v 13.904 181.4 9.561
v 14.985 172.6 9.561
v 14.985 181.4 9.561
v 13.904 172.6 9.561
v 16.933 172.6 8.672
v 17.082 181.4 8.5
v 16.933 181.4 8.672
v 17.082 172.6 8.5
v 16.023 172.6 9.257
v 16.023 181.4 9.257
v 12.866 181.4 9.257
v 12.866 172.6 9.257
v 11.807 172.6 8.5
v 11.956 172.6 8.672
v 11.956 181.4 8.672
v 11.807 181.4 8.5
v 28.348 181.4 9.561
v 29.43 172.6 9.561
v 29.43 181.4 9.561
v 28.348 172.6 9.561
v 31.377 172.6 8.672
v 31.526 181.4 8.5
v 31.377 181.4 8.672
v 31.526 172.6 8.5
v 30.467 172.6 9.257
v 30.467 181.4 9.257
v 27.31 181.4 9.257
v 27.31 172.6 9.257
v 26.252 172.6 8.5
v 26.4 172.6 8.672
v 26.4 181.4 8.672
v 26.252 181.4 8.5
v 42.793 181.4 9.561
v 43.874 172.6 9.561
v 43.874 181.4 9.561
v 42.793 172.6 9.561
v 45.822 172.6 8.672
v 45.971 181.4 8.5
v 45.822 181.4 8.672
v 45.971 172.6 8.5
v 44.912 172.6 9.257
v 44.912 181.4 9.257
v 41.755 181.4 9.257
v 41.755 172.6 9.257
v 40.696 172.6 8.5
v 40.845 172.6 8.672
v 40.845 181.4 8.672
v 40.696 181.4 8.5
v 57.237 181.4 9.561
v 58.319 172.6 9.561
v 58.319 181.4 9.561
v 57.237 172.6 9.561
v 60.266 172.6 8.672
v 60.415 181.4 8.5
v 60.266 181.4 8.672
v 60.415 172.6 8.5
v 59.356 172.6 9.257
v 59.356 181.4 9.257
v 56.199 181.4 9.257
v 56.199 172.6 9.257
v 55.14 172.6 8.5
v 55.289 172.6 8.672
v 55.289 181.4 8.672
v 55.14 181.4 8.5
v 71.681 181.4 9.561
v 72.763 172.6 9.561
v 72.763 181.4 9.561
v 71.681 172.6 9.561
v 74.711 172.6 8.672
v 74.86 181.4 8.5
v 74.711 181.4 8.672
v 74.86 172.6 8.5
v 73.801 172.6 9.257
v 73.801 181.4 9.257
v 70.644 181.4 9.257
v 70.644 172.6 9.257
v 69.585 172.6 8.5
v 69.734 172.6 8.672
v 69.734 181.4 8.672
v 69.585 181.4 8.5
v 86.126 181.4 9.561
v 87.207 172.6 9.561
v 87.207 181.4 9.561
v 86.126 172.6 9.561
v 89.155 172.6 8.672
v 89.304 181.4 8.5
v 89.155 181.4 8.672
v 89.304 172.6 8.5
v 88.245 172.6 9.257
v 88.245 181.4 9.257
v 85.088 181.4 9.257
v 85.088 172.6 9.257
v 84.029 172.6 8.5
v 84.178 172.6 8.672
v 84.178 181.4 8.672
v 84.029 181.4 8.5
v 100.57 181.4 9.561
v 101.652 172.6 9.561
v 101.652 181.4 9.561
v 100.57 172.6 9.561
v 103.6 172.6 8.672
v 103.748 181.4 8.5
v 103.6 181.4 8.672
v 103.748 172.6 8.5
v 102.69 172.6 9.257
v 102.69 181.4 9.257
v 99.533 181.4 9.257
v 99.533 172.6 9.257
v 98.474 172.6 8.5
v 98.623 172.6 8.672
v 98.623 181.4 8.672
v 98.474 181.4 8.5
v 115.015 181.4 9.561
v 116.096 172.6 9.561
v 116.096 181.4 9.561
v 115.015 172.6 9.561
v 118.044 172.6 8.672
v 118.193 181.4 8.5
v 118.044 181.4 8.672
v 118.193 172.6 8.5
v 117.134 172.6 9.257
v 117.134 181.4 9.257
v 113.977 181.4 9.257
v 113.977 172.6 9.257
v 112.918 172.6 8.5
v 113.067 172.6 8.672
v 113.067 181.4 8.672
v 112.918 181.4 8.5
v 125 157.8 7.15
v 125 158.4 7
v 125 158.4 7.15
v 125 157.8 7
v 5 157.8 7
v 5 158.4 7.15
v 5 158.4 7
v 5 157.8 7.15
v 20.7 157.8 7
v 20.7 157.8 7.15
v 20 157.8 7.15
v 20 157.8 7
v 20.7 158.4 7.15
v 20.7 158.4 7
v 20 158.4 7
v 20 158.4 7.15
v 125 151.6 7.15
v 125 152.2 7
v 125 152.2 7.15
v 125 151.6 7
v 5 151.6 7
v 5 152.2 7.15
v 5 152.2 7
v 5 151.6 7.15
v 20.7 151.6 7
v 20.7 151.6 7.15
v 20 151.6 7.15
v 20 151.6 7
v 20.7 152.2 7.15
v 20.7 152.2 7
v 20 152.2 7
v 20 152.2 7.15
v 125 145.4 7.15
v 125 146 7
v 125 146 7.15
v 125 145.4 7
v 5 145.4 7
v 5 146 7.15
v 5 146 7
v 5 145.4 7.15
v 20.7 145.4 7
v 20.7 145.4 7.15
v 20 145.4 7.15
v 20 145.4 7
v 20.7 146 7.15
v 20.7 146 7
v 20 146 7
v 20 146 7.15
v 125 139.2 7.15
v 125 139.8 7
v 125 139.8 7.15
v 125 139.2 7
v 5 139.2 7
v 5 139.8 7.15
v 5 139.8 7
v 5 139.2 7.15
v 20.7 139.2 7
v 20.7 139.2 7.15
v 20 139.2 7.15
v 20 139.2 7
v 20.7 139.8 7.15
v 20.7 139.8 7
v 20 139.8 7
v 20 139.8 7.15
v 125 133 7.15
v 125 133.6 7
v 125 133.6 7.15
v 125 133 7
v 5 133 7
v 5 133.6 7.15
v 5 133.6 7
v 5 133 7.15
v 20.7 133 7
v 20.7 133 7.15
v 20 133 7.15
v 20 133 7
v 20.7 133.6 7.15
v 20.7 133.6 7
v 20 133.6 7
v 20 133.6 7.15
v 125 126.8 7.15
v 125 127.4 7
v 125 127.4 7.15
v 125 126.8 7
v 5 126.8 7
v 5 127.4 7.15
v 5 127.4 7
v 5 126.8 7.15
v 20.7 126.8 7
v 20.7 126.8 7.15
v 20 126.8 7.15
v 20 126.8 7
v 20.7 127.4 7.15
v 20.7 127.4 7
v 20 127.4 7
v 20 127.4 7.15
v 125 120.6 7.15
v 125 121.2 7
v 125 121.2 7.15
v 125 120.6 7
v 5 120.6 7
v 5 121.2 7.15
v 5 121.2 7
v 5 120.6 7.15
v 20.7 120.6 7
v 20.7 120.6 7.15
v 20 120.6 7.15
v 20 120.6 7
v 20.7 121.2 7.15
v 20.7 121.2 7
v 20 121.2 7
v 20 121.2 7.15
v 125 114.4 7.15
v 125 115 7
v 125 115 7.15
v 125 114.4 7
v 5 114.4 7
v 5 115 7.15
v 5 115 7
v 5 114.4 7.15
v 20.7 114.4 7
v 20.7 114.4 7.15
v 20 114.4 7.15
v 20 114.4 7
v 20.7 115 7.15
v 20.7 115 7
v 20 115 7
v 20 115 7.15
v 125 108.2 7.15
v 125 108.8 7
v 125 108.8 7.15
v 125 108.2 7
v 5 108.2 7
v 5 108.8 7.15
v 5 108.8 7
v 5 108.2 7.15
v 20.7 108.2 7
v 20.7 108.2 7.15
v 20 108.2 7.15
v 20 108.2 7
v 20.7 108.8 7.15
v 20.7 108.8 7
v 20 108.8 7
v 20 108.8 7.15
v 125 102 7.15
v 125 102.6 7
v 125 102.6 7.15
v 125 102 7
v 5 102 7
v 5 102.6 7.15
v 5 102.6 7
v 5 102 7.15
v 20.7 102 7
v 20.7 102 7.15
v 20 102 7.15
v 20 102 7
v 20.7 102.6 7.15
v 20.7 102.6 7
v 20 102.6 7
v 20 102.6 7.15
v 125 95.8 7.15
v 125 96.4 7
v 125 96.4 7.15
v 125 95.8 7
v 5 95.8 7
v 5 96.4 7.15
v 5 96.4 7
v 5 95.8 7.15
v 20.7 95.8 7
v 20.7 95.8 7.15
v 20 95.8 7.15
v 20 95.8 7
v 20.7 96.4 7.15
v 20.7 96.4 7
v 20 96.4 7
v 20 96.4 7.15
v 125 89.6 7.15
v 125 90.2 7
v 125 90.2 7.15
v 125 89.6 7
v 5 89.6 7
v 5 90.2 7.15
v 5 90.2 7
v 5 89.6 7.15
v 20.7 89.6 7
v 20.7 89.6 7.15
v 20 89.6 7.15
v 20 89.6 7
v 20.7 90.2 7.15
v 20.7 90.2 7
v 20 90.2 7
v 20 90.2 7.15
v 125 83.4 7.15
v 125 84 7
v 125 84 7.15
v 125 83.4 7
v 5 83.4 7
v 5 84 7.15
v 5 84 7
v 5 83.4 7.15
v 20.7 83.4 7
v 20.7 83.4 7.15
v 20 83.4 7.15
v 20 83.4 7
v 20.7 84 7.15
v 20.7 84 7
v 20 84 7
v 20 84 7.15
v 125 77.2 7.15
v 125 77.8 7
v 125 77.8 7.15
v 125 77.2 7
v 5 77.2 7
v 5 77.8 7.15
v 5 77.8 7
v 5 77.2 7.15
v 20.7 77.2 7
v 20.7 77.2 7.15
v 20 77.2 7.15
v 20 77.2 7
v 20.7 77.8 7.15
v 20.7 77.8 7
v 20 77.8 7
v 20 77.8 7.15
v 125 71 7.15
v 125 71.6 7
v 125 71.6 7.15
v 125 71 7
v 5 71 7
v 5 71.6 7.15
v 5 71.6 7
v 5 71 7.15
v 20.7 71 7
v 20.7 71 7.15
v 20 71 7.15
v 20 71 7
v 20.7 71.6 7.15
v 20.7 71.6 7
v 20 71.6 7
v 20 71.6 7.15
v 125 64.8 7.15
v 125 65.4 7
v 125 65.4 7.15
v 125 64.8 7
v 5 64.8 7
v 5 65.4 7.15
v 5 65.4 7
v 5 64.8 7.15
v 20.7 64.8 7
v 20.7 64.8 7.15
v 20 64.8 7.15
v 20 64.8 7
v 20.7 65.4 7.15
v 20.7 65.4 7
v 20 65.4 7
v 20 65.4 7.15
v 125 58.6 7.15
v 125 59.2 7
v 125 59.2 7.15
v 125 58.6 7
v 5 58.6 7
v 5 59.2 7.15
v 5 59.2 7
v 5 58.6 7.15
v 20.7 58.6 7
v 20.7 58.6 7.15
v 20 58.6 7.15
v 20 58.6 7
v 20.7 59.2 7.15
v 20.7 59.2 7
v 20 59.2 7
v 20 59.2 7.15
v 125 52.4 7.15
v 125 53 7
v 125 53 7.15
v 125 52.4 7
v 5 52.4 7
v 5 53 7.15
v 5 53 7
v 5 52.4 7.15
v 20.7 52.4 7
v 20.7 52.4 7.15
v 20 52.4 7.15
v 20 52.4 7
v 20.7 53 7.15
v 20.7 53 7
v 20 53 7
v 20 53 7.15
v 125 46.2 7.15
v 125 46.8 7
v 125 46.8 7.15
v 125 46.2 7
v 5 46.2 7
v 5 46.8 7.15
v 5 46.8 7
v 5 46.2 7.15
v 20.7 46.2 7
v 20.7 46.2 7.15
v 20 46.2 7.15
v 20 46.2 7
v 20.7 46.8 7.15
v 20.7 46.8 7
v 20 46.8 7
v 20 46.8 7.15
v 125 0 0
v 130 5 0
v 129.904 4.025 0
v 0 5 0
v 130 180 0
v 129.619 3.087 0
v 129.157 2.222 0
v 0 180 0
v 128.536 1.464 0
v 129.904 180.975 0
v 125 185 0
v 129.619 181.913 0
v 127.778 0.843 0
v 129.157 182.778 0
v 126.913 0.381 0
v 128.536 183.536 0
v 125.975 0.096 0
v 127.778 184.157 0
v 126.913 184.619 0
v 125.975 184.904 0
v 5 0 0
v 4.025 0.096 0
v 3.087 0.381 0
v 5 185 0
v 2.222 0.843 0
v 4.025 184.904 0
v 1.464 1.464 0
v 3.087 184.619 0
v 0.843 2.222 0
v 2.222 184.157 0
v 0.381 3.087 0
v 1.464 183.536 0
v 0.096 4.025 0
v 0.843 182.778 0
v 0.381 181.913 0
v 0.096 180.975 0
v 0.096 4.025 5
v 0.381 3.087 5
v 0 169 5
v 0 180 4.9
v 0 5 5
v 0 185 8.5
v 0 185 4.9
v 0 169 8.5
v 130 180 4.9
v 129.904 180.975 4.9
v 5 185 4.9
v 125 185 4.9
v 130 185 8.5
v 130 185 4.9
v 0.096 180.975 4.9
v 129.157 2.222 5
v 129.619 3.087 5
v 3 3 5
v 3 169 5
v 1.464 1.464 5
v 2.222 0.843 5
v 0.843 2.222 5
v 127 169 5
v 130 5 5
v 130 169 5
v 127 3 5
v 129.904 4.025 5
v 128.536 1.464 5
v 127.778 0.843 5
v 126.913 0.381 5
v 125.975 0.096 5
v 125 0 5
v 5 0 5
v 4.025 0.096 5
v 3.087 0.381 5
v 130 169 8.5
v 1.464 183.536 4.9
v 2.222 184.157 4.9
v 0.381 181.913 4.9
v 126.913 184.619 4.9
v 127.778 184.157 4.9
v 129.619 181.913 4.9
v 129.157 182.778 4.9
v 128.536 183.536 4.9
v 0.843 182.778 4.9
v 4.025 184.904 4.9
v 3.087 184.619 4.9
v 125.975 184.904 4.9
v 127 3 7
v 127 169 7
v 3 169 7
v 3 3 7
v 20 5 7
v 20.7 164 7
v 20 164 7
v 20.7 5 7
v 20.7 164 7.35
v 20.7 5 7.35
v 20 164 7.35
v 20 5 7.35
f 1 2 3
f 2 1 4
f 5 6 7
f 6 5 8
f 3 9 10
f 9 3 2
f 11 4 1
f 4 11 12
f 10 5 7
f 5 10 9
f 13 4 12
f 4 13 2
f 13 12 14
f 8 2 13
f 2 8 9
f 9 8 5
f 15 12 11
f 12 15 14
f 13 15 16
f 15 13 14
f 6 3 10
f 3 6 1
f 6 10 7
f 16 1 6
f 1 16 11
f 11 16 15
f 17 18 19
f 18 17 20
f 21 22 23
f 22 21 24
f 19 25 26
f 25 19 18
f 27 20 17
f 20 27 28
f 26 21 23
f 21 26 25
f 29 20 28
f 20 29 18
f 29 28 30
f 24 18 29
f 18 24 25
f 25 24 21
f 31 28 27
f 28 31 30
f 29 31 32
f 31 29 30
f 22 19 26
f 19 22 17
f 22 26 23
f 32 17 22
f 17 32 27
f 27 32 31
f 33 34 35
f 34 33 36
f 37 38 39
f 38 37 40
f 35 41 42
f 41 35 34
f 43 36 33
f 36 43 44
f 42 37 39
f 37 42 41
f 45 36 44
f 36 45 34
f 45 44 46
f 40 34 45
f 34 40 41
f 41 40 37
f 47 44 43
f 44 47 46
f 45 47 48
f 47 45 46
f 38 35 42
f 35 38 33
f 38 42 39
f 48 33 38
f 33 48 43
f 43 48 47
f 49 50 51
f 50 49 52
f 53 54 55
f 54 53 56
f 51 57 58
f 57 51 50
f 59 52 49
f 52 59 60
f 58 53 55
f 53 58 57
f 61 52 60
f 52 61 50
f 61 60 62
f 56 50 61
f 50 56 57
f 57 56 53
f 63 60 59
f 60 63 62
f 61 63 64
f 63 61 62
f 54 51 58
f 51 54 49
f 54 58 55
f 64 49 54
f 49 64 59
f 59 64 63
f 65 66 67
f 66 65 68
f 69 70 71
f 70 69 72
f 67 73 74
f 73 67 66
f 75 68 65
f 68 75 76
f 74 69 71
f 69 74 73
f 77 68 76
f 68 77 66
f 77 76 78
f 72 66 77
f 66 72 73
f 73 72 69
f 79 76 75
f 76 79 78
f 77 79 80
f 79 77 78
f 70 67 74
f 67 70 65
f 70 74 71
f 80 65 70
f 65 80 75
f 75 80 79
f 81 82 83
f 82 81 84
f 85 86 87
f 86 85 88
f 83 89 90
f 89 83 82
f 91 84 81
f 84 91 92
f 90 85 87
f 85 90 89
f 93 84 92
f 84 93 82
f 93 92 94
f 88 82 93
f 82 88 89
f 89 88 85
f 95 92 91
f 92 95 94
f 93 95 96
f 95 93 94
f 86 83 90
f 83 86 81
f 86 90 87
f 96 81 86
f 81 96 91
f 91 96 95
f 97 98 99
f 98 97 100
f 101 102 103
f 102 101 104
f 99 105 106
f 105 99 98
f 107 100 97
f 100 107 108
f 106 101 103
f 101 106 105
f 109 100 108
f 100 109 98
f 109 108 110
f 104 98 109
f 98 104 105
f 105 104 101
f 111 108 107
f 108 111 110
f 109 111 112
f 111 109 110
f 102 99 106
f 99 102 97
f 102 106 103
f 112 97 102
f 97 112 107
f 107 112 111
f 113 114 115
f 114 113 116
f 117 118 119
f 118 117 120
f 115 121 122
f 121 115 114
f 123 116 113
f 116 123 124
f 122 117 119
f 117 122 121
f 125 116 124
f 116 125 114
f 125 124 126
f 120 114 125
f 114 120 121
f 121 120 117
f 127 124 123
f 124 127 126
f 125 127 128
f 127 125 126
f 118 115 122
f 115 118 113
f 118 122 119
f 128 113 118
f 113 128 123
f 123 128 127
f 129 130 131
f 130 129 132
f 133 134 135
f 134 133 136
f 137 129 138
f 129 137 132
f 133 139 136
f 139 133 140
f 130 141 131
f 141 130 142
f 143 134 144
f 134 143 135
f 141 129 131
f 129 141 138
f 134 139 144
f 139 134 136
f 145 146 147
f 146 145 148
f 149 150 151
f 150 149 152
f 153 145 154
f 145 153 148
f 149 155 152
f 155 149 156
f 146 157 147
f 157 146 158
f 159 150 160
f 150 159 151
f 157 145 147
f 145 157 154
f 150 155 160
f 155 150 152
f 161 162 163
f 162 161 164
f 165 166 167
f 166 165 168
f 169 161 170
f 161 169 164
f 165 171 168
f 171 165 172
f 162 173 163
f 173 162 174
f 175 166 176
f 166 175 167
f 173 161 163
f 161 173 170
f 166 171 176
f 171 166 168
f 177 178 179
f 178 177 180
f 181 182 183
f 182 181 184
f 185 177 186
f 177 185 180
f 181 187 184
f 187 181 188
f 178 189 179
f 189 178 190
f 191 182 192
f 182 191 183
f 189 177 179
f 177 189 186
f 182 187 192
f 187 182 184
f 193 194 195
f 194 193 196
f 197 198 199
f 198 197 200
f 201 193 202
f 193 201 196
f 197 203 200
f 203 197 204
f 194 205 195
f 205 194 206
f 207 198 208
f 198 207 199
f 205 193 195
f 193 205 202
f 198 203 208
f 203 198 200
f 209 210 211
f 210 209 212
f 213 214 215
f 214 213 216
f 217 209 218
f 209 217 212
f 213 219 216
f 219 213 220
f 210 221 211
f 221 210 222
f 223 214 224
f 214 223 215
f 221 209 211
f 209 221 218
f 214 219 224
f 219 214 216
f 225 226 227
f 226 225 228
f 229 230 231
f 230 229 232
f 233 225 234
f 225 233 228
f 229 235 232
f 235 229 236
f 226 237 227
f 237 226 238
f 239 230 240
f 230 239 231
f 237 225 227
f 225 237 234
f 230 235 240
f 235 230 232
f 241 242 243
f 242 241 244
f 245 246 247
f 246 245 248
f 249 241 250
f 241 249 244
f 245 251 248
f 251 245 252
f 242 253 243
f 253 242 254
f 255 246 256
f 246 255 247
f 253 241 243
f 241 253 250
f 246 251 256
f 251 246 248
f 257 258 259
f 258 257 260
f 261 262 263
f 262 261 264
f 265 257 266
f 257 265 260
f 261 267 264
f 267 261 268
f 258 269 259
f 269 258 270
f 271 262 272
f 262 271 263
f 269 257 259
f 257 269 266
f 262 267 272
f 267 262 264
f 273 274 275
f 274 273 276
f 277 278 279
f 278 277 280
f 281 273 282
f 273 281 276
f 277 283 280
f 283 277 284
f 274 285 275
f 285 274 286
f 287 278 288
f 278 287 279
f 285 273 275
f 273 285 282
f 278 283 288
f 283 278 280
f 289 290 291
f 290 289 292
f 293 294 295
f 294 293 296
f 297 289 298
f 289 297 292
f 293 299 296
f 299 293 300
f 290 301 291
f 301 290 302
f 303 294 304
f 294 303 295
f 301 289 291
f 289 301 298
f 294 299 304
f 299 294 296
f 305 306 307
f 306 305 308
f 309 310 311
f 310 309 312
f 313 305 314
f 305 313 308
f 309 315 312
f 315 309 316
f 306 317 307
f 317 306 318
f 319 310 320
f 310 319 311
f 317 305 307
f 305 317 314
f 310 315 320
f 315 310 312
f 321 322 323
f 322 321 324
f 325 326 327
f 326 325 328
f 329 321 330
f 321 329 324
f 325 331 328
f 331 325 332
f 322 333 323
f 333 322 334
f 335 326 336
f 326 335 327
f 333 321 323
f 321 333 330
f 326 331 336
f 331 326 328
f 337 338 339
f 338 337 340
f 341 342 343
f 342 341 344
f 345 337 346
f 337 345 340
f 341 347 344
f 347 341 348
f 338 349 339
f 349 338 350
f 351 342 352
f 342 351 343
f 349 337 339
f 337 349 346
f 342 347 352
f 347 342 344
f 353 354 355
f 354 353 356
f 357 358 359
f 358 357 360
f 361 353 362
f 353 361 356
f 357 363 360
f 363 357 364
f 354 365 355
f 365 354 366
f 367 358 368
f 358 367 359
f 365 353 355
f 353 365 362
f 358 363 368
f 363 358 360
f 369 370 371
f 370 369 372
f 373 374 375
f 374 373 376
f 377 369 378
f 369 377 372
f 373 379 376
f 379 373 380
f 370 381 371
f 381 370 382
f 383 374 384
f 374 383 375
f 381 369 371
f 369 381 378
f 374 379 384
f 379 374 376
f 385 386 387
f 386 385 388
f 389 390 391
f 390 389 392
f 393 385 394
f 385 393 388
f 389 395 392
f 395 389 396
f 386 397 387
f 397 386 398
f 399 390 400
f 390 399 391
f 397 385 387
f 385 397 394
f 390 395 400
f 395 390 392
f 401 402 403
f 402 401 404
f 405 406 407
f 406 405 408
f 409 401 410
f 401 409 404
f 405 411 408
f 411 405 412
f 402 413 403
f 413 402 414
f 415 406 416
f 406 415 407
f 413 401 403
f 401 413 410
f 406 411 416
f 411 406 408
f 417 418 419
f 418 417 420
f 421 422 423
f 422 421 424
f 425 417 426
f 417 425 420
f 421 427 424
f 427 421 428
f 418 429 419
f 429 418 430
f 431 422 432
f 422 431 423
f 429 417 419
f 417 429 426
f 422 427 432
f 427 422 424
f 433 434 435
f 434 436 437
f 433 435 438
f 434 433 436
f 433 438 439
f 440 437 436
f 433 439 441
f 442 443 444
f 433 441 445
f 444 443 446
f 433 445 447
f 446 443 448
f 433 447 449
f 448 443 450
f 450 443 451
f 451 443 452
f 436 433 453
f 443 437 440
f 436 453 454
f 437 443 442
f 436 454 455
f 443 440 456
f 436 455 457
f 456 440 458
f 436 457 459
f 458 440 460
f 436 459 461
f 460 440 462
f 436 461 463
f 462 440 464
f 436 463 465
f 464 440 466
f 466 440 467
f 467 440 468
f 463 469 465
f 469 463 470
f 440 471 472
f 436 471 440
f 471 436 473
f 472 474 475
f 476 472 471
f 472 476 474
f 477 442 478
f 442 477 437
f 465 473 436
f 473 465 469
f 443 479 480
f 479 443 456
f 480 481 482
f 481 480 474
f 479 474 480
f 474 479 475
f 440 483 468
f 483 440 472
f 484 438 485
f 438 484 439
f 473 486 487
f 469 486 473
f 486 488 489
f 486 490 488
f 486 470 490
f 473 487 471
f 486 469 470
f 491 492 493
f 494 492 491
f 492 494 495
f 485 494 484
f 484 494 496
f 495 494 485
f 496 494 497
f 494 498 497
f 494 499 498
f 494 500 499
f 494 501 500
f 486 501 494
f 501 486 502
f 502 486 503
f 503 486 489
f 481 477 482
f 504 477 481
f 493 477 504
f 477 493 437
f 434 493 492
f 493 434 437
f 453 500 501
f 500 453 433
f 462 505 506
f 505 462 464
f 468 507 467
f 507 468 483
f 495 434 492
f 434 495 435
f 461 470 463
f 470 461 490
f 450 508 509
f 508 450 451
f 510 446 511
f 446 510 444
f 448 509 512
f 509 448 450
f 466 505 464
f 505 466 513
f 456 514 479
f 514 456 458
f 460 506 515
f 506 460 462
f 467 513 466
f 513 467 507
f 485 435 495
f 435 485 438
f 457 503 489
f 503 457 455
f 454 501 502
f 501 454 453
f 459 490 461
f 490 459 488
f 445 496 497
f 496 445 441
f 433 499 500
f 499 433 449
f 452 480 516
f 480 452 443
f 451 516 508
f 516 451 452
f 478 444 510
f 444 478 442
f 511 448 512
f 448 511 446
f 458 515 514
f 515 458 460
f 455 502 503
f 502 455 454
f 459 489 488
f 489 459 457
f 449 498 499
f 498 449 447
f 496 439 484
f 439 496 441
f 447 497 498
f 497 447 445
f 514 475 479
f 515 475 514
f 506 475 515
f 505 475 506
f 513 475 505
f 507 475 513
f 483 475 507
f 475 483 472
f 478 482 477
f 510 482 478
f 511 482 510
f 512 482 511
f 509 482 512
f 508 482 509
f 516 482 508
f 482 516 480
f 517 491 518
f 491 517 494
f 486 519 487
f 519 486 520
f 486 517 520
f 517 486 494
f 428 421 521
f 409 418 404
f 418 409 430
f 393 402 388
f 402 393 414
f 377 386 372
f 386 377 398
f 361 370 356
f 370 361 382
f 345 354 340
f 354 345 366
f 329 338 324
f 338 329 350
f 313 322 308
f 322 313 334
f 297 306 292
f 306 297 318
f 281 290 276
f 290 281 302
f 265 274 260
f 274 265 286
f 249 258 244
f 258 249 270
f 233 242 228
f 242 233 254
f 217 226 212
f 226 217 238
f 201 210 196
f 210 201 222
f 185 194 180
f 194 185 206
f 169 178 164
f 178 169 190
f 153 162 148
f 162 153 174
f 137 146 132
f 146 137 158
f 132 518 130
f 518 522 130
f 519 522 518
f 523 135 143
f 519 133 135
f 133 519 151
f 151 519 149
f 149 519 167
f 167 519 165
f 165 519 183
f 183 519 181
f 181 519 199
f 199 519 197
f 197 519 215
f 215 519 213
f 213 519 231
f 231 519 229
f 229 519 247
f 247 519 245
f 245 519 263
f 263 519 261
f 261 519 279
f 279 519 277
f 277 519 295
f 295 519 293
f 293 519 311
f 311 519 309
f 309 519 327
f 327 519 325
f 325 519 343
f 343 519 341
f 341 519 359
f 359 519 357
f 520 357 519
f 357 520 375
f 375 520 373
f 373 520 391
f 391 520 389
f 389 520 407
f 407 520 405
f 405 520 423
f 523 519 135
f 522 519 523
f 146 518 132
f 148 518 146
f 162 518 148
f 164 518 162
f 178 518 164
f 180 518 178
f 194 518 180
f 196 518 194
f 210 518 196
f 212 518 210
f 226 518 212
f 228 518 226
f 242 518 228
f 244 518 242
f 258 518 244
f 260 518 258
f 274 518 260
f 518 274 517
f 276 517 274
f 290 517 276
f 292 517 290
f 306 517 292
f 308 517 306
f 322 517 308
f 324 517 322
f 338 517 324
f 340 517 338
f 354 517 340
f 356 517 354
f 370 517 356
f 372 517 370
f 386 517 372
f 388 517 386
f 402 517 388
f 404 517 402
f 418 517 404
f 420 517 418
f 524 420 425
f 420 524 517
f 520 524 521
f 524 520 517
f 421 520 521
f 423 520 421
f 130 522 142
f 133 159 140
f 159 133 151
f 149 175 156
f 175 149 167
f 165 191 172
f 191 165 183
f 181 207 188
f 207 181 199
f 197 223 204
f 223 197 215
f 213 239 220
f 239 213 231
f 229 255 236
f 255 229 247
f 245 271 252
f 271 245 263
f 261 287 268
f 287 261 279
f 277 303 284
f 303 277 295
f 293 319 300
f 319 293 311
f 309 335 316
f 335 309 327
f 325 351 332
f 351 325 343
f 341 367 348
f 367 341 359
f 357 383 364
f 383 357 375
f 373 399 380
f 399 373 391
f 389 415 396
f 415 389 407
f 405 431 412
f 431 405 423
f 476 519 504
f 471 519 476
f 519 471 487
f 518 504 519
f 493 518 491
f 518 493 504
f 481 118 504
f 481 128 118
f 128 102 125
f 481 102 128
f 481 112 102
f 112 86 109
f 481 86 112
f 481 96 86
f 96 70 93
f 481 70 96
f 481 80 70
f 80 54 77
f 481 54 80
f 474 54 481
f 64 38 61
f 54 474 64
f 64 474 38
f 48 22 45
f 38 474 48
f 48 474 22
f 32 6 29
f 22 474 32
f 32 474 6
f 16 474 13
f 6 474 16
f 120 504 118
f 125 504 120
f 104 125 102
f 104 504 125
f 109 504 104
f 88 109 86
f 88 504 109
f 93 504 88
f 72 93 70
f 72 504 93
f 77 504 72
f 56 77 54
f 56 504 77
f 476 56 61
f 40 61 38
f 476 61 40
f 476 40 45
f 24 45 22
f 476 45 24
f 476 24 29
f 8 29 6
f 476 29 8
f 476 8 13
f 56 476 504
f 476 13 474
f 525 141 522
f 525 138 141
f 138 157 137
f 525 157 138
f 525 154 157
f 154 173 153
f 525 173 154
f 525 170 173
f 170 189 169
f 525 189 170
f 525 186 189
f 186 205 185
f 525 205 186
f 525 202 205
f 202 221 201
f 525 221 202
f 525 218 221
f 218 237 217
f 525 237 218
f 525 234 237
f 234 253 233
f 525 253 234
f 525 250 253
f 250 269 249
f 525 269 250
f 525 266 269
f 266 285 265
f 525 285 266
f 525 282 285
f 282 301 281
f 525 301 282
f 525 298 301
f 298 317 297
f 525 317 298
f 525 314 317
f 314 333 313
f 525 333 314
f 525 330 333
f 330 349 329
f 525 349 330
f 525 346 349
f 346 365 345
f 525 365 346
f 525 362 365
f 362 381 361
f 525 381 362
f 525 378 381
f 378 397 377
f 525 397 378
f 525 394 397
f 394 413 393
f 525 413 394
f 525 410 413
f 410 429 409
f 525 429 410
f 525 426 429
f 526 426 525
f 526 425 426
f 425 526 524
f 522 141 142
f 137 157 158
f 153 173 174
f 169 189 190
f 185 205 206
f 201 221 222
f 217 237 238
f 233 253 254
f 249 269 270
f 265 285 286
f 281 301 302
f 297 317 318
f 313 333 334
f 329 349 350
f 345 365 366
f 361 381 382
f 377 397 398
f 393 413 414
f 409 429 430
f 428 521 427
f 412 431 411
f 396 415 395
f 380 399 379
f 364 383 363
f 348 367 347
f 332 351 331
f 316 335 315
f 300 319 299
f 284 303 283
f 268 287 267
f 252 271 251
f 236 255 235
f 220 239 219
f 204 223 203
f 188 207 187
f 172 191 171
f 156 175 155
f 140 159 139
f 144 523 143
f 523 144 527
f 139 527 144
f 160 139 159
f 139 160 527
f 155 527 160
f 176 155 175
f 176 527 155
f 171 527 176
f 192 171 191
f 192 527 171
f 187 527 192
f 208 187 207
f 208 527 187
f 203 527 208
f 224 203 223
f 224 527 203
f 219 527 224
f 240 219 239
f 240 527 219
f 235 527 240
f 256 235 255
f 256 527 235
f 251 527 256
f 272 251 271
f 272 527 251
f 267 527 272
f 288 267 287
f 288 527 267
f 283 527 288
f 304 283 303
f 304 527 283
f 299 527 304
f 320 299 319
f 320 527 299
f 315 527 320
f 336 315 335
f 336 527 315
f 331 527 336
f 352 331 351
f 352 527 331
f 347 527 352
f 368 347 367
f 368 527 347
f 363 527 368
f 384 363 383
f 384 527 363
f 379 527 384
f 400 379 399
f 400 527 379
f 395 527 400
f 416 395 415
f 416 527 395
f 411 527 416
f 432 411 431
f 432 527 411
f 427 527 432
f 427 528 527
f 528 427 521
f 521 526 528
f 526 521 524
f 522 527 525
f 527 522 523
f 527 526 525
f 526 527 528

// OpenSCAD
// =============================================================
//  Vulnerability Notebook  —  OpenSCAD 3D Panel
//  Single-page notepad, portrait orientation  130 × 185 × 7 mm
//
//  F5 = preview · F6 = render · File → Export as STL
//  Text is added at runtime — this is the blank shell.
// =============================================================

$fn = 32;

// ── Dimensions ───────────────────────────────────────────────
NW  = 130;
NH  = 185;
ND  =   5;    // cover thickness
PR  =   2;    // page rise above cover
CR  =   5;    // corner radius

// ── Layout zones ─────────────────────────────────────────────
BIND_H  = 16;   // spiral binding strip
PADY    =  5;   // top/bottom content margin

// ── Z levels ─────────────────────────────────────────────────
ZC = ND;
ZP = ND + PR;

// ── Colors ───────────────────────────────────────────────────
C_COVER  = [0.11, 0.11, 0.13];
C_BIND   = [0.08, 0.08, 0.10];
C_PAGE   = [0.96, 0.94, 0.89];
C_RING   = [0.48, 0.50, 0.55];
C_MARGIN = [0.82, 0.48, 0.48];
C_RULE   = [0.72, 0.80, 0.92];

// ── Cover ────────────────────────────────────────────────────
module cover() {
    color(C_COVER)
    linear_extrude(ND)
    hull()
        for (x = [CR, NW - CR]) for (y = [CR, NH - CR])
            translate([x, y]) circle(r = CR);
}

// ── Cream page ───────────────────────────────────────────────
module page() {
    inset = 3;
    color(C_PAGE)
    translate([inset, inset, ZC - 0.1])
    linear_extrude(PR + 0.1)
        square([NW - inset * 2, NH - inset * 2]);
}

// ── Binding strip ────────────────────────────────────────────
module binding_strip() {
    color(C_BIND)
    translate([0, NH - BIND_H, ZC - 0.1])
    linear_extrude(PR + ND * 0.3 + 0.1)
        square([NW, BIND_H]);
}

// ── Spiral rings ─────────────────────────────────────────────
RING_N = 8;
module rings() {
    pitch = NW / (RING_N + 1);
    by    = NH - BIND_H / 2;
    bz    = ZC + PR * 0.4;
    for (i = [1 : RING_N]) {
        color(C_RING)
        translate([i * pitch, by, bz])
        rotate([90, 0, 0])
        difference() {
            cylinder(h = BIND_H * 0.55, r = 3.8, center = true, $fn = 22);
            cylinder(h = BIND_H * 0.70, r = 2.3, center = true, $fn = 22);
        }
    }
}

// ── Red margin line ───────────────────────────────────────────
module margin_line() {
    color(C_MARGIN, 0.8)
    translate([20, PADY, ZP - 0.05])
    linear_extrude(0.4)
        square([0.7, NH - BIND_H - PADY * 2]);
}

// ── Ruled lines ───────────────────────────────────────────────
module ruled_lines() {
    LH = 6.2;
    color(C_RULE, 0.85)
    for (n = [0 : 18]) {
        y = NH - BIND_H - PADY - (n + 1) * LH;
        if (y > PADY)
            translate([5, y, ZP - 0.05])
            linear_extrude(0.2)
                square([NW - 10, 0.6]);
    }
}

// ── Assembly ─────────────────────────────────────────────────
module notebook() {
    cover();
    page();
    binding_strip();
    rings();
    margin_line();
    ruled_lines();
}

notebook();
